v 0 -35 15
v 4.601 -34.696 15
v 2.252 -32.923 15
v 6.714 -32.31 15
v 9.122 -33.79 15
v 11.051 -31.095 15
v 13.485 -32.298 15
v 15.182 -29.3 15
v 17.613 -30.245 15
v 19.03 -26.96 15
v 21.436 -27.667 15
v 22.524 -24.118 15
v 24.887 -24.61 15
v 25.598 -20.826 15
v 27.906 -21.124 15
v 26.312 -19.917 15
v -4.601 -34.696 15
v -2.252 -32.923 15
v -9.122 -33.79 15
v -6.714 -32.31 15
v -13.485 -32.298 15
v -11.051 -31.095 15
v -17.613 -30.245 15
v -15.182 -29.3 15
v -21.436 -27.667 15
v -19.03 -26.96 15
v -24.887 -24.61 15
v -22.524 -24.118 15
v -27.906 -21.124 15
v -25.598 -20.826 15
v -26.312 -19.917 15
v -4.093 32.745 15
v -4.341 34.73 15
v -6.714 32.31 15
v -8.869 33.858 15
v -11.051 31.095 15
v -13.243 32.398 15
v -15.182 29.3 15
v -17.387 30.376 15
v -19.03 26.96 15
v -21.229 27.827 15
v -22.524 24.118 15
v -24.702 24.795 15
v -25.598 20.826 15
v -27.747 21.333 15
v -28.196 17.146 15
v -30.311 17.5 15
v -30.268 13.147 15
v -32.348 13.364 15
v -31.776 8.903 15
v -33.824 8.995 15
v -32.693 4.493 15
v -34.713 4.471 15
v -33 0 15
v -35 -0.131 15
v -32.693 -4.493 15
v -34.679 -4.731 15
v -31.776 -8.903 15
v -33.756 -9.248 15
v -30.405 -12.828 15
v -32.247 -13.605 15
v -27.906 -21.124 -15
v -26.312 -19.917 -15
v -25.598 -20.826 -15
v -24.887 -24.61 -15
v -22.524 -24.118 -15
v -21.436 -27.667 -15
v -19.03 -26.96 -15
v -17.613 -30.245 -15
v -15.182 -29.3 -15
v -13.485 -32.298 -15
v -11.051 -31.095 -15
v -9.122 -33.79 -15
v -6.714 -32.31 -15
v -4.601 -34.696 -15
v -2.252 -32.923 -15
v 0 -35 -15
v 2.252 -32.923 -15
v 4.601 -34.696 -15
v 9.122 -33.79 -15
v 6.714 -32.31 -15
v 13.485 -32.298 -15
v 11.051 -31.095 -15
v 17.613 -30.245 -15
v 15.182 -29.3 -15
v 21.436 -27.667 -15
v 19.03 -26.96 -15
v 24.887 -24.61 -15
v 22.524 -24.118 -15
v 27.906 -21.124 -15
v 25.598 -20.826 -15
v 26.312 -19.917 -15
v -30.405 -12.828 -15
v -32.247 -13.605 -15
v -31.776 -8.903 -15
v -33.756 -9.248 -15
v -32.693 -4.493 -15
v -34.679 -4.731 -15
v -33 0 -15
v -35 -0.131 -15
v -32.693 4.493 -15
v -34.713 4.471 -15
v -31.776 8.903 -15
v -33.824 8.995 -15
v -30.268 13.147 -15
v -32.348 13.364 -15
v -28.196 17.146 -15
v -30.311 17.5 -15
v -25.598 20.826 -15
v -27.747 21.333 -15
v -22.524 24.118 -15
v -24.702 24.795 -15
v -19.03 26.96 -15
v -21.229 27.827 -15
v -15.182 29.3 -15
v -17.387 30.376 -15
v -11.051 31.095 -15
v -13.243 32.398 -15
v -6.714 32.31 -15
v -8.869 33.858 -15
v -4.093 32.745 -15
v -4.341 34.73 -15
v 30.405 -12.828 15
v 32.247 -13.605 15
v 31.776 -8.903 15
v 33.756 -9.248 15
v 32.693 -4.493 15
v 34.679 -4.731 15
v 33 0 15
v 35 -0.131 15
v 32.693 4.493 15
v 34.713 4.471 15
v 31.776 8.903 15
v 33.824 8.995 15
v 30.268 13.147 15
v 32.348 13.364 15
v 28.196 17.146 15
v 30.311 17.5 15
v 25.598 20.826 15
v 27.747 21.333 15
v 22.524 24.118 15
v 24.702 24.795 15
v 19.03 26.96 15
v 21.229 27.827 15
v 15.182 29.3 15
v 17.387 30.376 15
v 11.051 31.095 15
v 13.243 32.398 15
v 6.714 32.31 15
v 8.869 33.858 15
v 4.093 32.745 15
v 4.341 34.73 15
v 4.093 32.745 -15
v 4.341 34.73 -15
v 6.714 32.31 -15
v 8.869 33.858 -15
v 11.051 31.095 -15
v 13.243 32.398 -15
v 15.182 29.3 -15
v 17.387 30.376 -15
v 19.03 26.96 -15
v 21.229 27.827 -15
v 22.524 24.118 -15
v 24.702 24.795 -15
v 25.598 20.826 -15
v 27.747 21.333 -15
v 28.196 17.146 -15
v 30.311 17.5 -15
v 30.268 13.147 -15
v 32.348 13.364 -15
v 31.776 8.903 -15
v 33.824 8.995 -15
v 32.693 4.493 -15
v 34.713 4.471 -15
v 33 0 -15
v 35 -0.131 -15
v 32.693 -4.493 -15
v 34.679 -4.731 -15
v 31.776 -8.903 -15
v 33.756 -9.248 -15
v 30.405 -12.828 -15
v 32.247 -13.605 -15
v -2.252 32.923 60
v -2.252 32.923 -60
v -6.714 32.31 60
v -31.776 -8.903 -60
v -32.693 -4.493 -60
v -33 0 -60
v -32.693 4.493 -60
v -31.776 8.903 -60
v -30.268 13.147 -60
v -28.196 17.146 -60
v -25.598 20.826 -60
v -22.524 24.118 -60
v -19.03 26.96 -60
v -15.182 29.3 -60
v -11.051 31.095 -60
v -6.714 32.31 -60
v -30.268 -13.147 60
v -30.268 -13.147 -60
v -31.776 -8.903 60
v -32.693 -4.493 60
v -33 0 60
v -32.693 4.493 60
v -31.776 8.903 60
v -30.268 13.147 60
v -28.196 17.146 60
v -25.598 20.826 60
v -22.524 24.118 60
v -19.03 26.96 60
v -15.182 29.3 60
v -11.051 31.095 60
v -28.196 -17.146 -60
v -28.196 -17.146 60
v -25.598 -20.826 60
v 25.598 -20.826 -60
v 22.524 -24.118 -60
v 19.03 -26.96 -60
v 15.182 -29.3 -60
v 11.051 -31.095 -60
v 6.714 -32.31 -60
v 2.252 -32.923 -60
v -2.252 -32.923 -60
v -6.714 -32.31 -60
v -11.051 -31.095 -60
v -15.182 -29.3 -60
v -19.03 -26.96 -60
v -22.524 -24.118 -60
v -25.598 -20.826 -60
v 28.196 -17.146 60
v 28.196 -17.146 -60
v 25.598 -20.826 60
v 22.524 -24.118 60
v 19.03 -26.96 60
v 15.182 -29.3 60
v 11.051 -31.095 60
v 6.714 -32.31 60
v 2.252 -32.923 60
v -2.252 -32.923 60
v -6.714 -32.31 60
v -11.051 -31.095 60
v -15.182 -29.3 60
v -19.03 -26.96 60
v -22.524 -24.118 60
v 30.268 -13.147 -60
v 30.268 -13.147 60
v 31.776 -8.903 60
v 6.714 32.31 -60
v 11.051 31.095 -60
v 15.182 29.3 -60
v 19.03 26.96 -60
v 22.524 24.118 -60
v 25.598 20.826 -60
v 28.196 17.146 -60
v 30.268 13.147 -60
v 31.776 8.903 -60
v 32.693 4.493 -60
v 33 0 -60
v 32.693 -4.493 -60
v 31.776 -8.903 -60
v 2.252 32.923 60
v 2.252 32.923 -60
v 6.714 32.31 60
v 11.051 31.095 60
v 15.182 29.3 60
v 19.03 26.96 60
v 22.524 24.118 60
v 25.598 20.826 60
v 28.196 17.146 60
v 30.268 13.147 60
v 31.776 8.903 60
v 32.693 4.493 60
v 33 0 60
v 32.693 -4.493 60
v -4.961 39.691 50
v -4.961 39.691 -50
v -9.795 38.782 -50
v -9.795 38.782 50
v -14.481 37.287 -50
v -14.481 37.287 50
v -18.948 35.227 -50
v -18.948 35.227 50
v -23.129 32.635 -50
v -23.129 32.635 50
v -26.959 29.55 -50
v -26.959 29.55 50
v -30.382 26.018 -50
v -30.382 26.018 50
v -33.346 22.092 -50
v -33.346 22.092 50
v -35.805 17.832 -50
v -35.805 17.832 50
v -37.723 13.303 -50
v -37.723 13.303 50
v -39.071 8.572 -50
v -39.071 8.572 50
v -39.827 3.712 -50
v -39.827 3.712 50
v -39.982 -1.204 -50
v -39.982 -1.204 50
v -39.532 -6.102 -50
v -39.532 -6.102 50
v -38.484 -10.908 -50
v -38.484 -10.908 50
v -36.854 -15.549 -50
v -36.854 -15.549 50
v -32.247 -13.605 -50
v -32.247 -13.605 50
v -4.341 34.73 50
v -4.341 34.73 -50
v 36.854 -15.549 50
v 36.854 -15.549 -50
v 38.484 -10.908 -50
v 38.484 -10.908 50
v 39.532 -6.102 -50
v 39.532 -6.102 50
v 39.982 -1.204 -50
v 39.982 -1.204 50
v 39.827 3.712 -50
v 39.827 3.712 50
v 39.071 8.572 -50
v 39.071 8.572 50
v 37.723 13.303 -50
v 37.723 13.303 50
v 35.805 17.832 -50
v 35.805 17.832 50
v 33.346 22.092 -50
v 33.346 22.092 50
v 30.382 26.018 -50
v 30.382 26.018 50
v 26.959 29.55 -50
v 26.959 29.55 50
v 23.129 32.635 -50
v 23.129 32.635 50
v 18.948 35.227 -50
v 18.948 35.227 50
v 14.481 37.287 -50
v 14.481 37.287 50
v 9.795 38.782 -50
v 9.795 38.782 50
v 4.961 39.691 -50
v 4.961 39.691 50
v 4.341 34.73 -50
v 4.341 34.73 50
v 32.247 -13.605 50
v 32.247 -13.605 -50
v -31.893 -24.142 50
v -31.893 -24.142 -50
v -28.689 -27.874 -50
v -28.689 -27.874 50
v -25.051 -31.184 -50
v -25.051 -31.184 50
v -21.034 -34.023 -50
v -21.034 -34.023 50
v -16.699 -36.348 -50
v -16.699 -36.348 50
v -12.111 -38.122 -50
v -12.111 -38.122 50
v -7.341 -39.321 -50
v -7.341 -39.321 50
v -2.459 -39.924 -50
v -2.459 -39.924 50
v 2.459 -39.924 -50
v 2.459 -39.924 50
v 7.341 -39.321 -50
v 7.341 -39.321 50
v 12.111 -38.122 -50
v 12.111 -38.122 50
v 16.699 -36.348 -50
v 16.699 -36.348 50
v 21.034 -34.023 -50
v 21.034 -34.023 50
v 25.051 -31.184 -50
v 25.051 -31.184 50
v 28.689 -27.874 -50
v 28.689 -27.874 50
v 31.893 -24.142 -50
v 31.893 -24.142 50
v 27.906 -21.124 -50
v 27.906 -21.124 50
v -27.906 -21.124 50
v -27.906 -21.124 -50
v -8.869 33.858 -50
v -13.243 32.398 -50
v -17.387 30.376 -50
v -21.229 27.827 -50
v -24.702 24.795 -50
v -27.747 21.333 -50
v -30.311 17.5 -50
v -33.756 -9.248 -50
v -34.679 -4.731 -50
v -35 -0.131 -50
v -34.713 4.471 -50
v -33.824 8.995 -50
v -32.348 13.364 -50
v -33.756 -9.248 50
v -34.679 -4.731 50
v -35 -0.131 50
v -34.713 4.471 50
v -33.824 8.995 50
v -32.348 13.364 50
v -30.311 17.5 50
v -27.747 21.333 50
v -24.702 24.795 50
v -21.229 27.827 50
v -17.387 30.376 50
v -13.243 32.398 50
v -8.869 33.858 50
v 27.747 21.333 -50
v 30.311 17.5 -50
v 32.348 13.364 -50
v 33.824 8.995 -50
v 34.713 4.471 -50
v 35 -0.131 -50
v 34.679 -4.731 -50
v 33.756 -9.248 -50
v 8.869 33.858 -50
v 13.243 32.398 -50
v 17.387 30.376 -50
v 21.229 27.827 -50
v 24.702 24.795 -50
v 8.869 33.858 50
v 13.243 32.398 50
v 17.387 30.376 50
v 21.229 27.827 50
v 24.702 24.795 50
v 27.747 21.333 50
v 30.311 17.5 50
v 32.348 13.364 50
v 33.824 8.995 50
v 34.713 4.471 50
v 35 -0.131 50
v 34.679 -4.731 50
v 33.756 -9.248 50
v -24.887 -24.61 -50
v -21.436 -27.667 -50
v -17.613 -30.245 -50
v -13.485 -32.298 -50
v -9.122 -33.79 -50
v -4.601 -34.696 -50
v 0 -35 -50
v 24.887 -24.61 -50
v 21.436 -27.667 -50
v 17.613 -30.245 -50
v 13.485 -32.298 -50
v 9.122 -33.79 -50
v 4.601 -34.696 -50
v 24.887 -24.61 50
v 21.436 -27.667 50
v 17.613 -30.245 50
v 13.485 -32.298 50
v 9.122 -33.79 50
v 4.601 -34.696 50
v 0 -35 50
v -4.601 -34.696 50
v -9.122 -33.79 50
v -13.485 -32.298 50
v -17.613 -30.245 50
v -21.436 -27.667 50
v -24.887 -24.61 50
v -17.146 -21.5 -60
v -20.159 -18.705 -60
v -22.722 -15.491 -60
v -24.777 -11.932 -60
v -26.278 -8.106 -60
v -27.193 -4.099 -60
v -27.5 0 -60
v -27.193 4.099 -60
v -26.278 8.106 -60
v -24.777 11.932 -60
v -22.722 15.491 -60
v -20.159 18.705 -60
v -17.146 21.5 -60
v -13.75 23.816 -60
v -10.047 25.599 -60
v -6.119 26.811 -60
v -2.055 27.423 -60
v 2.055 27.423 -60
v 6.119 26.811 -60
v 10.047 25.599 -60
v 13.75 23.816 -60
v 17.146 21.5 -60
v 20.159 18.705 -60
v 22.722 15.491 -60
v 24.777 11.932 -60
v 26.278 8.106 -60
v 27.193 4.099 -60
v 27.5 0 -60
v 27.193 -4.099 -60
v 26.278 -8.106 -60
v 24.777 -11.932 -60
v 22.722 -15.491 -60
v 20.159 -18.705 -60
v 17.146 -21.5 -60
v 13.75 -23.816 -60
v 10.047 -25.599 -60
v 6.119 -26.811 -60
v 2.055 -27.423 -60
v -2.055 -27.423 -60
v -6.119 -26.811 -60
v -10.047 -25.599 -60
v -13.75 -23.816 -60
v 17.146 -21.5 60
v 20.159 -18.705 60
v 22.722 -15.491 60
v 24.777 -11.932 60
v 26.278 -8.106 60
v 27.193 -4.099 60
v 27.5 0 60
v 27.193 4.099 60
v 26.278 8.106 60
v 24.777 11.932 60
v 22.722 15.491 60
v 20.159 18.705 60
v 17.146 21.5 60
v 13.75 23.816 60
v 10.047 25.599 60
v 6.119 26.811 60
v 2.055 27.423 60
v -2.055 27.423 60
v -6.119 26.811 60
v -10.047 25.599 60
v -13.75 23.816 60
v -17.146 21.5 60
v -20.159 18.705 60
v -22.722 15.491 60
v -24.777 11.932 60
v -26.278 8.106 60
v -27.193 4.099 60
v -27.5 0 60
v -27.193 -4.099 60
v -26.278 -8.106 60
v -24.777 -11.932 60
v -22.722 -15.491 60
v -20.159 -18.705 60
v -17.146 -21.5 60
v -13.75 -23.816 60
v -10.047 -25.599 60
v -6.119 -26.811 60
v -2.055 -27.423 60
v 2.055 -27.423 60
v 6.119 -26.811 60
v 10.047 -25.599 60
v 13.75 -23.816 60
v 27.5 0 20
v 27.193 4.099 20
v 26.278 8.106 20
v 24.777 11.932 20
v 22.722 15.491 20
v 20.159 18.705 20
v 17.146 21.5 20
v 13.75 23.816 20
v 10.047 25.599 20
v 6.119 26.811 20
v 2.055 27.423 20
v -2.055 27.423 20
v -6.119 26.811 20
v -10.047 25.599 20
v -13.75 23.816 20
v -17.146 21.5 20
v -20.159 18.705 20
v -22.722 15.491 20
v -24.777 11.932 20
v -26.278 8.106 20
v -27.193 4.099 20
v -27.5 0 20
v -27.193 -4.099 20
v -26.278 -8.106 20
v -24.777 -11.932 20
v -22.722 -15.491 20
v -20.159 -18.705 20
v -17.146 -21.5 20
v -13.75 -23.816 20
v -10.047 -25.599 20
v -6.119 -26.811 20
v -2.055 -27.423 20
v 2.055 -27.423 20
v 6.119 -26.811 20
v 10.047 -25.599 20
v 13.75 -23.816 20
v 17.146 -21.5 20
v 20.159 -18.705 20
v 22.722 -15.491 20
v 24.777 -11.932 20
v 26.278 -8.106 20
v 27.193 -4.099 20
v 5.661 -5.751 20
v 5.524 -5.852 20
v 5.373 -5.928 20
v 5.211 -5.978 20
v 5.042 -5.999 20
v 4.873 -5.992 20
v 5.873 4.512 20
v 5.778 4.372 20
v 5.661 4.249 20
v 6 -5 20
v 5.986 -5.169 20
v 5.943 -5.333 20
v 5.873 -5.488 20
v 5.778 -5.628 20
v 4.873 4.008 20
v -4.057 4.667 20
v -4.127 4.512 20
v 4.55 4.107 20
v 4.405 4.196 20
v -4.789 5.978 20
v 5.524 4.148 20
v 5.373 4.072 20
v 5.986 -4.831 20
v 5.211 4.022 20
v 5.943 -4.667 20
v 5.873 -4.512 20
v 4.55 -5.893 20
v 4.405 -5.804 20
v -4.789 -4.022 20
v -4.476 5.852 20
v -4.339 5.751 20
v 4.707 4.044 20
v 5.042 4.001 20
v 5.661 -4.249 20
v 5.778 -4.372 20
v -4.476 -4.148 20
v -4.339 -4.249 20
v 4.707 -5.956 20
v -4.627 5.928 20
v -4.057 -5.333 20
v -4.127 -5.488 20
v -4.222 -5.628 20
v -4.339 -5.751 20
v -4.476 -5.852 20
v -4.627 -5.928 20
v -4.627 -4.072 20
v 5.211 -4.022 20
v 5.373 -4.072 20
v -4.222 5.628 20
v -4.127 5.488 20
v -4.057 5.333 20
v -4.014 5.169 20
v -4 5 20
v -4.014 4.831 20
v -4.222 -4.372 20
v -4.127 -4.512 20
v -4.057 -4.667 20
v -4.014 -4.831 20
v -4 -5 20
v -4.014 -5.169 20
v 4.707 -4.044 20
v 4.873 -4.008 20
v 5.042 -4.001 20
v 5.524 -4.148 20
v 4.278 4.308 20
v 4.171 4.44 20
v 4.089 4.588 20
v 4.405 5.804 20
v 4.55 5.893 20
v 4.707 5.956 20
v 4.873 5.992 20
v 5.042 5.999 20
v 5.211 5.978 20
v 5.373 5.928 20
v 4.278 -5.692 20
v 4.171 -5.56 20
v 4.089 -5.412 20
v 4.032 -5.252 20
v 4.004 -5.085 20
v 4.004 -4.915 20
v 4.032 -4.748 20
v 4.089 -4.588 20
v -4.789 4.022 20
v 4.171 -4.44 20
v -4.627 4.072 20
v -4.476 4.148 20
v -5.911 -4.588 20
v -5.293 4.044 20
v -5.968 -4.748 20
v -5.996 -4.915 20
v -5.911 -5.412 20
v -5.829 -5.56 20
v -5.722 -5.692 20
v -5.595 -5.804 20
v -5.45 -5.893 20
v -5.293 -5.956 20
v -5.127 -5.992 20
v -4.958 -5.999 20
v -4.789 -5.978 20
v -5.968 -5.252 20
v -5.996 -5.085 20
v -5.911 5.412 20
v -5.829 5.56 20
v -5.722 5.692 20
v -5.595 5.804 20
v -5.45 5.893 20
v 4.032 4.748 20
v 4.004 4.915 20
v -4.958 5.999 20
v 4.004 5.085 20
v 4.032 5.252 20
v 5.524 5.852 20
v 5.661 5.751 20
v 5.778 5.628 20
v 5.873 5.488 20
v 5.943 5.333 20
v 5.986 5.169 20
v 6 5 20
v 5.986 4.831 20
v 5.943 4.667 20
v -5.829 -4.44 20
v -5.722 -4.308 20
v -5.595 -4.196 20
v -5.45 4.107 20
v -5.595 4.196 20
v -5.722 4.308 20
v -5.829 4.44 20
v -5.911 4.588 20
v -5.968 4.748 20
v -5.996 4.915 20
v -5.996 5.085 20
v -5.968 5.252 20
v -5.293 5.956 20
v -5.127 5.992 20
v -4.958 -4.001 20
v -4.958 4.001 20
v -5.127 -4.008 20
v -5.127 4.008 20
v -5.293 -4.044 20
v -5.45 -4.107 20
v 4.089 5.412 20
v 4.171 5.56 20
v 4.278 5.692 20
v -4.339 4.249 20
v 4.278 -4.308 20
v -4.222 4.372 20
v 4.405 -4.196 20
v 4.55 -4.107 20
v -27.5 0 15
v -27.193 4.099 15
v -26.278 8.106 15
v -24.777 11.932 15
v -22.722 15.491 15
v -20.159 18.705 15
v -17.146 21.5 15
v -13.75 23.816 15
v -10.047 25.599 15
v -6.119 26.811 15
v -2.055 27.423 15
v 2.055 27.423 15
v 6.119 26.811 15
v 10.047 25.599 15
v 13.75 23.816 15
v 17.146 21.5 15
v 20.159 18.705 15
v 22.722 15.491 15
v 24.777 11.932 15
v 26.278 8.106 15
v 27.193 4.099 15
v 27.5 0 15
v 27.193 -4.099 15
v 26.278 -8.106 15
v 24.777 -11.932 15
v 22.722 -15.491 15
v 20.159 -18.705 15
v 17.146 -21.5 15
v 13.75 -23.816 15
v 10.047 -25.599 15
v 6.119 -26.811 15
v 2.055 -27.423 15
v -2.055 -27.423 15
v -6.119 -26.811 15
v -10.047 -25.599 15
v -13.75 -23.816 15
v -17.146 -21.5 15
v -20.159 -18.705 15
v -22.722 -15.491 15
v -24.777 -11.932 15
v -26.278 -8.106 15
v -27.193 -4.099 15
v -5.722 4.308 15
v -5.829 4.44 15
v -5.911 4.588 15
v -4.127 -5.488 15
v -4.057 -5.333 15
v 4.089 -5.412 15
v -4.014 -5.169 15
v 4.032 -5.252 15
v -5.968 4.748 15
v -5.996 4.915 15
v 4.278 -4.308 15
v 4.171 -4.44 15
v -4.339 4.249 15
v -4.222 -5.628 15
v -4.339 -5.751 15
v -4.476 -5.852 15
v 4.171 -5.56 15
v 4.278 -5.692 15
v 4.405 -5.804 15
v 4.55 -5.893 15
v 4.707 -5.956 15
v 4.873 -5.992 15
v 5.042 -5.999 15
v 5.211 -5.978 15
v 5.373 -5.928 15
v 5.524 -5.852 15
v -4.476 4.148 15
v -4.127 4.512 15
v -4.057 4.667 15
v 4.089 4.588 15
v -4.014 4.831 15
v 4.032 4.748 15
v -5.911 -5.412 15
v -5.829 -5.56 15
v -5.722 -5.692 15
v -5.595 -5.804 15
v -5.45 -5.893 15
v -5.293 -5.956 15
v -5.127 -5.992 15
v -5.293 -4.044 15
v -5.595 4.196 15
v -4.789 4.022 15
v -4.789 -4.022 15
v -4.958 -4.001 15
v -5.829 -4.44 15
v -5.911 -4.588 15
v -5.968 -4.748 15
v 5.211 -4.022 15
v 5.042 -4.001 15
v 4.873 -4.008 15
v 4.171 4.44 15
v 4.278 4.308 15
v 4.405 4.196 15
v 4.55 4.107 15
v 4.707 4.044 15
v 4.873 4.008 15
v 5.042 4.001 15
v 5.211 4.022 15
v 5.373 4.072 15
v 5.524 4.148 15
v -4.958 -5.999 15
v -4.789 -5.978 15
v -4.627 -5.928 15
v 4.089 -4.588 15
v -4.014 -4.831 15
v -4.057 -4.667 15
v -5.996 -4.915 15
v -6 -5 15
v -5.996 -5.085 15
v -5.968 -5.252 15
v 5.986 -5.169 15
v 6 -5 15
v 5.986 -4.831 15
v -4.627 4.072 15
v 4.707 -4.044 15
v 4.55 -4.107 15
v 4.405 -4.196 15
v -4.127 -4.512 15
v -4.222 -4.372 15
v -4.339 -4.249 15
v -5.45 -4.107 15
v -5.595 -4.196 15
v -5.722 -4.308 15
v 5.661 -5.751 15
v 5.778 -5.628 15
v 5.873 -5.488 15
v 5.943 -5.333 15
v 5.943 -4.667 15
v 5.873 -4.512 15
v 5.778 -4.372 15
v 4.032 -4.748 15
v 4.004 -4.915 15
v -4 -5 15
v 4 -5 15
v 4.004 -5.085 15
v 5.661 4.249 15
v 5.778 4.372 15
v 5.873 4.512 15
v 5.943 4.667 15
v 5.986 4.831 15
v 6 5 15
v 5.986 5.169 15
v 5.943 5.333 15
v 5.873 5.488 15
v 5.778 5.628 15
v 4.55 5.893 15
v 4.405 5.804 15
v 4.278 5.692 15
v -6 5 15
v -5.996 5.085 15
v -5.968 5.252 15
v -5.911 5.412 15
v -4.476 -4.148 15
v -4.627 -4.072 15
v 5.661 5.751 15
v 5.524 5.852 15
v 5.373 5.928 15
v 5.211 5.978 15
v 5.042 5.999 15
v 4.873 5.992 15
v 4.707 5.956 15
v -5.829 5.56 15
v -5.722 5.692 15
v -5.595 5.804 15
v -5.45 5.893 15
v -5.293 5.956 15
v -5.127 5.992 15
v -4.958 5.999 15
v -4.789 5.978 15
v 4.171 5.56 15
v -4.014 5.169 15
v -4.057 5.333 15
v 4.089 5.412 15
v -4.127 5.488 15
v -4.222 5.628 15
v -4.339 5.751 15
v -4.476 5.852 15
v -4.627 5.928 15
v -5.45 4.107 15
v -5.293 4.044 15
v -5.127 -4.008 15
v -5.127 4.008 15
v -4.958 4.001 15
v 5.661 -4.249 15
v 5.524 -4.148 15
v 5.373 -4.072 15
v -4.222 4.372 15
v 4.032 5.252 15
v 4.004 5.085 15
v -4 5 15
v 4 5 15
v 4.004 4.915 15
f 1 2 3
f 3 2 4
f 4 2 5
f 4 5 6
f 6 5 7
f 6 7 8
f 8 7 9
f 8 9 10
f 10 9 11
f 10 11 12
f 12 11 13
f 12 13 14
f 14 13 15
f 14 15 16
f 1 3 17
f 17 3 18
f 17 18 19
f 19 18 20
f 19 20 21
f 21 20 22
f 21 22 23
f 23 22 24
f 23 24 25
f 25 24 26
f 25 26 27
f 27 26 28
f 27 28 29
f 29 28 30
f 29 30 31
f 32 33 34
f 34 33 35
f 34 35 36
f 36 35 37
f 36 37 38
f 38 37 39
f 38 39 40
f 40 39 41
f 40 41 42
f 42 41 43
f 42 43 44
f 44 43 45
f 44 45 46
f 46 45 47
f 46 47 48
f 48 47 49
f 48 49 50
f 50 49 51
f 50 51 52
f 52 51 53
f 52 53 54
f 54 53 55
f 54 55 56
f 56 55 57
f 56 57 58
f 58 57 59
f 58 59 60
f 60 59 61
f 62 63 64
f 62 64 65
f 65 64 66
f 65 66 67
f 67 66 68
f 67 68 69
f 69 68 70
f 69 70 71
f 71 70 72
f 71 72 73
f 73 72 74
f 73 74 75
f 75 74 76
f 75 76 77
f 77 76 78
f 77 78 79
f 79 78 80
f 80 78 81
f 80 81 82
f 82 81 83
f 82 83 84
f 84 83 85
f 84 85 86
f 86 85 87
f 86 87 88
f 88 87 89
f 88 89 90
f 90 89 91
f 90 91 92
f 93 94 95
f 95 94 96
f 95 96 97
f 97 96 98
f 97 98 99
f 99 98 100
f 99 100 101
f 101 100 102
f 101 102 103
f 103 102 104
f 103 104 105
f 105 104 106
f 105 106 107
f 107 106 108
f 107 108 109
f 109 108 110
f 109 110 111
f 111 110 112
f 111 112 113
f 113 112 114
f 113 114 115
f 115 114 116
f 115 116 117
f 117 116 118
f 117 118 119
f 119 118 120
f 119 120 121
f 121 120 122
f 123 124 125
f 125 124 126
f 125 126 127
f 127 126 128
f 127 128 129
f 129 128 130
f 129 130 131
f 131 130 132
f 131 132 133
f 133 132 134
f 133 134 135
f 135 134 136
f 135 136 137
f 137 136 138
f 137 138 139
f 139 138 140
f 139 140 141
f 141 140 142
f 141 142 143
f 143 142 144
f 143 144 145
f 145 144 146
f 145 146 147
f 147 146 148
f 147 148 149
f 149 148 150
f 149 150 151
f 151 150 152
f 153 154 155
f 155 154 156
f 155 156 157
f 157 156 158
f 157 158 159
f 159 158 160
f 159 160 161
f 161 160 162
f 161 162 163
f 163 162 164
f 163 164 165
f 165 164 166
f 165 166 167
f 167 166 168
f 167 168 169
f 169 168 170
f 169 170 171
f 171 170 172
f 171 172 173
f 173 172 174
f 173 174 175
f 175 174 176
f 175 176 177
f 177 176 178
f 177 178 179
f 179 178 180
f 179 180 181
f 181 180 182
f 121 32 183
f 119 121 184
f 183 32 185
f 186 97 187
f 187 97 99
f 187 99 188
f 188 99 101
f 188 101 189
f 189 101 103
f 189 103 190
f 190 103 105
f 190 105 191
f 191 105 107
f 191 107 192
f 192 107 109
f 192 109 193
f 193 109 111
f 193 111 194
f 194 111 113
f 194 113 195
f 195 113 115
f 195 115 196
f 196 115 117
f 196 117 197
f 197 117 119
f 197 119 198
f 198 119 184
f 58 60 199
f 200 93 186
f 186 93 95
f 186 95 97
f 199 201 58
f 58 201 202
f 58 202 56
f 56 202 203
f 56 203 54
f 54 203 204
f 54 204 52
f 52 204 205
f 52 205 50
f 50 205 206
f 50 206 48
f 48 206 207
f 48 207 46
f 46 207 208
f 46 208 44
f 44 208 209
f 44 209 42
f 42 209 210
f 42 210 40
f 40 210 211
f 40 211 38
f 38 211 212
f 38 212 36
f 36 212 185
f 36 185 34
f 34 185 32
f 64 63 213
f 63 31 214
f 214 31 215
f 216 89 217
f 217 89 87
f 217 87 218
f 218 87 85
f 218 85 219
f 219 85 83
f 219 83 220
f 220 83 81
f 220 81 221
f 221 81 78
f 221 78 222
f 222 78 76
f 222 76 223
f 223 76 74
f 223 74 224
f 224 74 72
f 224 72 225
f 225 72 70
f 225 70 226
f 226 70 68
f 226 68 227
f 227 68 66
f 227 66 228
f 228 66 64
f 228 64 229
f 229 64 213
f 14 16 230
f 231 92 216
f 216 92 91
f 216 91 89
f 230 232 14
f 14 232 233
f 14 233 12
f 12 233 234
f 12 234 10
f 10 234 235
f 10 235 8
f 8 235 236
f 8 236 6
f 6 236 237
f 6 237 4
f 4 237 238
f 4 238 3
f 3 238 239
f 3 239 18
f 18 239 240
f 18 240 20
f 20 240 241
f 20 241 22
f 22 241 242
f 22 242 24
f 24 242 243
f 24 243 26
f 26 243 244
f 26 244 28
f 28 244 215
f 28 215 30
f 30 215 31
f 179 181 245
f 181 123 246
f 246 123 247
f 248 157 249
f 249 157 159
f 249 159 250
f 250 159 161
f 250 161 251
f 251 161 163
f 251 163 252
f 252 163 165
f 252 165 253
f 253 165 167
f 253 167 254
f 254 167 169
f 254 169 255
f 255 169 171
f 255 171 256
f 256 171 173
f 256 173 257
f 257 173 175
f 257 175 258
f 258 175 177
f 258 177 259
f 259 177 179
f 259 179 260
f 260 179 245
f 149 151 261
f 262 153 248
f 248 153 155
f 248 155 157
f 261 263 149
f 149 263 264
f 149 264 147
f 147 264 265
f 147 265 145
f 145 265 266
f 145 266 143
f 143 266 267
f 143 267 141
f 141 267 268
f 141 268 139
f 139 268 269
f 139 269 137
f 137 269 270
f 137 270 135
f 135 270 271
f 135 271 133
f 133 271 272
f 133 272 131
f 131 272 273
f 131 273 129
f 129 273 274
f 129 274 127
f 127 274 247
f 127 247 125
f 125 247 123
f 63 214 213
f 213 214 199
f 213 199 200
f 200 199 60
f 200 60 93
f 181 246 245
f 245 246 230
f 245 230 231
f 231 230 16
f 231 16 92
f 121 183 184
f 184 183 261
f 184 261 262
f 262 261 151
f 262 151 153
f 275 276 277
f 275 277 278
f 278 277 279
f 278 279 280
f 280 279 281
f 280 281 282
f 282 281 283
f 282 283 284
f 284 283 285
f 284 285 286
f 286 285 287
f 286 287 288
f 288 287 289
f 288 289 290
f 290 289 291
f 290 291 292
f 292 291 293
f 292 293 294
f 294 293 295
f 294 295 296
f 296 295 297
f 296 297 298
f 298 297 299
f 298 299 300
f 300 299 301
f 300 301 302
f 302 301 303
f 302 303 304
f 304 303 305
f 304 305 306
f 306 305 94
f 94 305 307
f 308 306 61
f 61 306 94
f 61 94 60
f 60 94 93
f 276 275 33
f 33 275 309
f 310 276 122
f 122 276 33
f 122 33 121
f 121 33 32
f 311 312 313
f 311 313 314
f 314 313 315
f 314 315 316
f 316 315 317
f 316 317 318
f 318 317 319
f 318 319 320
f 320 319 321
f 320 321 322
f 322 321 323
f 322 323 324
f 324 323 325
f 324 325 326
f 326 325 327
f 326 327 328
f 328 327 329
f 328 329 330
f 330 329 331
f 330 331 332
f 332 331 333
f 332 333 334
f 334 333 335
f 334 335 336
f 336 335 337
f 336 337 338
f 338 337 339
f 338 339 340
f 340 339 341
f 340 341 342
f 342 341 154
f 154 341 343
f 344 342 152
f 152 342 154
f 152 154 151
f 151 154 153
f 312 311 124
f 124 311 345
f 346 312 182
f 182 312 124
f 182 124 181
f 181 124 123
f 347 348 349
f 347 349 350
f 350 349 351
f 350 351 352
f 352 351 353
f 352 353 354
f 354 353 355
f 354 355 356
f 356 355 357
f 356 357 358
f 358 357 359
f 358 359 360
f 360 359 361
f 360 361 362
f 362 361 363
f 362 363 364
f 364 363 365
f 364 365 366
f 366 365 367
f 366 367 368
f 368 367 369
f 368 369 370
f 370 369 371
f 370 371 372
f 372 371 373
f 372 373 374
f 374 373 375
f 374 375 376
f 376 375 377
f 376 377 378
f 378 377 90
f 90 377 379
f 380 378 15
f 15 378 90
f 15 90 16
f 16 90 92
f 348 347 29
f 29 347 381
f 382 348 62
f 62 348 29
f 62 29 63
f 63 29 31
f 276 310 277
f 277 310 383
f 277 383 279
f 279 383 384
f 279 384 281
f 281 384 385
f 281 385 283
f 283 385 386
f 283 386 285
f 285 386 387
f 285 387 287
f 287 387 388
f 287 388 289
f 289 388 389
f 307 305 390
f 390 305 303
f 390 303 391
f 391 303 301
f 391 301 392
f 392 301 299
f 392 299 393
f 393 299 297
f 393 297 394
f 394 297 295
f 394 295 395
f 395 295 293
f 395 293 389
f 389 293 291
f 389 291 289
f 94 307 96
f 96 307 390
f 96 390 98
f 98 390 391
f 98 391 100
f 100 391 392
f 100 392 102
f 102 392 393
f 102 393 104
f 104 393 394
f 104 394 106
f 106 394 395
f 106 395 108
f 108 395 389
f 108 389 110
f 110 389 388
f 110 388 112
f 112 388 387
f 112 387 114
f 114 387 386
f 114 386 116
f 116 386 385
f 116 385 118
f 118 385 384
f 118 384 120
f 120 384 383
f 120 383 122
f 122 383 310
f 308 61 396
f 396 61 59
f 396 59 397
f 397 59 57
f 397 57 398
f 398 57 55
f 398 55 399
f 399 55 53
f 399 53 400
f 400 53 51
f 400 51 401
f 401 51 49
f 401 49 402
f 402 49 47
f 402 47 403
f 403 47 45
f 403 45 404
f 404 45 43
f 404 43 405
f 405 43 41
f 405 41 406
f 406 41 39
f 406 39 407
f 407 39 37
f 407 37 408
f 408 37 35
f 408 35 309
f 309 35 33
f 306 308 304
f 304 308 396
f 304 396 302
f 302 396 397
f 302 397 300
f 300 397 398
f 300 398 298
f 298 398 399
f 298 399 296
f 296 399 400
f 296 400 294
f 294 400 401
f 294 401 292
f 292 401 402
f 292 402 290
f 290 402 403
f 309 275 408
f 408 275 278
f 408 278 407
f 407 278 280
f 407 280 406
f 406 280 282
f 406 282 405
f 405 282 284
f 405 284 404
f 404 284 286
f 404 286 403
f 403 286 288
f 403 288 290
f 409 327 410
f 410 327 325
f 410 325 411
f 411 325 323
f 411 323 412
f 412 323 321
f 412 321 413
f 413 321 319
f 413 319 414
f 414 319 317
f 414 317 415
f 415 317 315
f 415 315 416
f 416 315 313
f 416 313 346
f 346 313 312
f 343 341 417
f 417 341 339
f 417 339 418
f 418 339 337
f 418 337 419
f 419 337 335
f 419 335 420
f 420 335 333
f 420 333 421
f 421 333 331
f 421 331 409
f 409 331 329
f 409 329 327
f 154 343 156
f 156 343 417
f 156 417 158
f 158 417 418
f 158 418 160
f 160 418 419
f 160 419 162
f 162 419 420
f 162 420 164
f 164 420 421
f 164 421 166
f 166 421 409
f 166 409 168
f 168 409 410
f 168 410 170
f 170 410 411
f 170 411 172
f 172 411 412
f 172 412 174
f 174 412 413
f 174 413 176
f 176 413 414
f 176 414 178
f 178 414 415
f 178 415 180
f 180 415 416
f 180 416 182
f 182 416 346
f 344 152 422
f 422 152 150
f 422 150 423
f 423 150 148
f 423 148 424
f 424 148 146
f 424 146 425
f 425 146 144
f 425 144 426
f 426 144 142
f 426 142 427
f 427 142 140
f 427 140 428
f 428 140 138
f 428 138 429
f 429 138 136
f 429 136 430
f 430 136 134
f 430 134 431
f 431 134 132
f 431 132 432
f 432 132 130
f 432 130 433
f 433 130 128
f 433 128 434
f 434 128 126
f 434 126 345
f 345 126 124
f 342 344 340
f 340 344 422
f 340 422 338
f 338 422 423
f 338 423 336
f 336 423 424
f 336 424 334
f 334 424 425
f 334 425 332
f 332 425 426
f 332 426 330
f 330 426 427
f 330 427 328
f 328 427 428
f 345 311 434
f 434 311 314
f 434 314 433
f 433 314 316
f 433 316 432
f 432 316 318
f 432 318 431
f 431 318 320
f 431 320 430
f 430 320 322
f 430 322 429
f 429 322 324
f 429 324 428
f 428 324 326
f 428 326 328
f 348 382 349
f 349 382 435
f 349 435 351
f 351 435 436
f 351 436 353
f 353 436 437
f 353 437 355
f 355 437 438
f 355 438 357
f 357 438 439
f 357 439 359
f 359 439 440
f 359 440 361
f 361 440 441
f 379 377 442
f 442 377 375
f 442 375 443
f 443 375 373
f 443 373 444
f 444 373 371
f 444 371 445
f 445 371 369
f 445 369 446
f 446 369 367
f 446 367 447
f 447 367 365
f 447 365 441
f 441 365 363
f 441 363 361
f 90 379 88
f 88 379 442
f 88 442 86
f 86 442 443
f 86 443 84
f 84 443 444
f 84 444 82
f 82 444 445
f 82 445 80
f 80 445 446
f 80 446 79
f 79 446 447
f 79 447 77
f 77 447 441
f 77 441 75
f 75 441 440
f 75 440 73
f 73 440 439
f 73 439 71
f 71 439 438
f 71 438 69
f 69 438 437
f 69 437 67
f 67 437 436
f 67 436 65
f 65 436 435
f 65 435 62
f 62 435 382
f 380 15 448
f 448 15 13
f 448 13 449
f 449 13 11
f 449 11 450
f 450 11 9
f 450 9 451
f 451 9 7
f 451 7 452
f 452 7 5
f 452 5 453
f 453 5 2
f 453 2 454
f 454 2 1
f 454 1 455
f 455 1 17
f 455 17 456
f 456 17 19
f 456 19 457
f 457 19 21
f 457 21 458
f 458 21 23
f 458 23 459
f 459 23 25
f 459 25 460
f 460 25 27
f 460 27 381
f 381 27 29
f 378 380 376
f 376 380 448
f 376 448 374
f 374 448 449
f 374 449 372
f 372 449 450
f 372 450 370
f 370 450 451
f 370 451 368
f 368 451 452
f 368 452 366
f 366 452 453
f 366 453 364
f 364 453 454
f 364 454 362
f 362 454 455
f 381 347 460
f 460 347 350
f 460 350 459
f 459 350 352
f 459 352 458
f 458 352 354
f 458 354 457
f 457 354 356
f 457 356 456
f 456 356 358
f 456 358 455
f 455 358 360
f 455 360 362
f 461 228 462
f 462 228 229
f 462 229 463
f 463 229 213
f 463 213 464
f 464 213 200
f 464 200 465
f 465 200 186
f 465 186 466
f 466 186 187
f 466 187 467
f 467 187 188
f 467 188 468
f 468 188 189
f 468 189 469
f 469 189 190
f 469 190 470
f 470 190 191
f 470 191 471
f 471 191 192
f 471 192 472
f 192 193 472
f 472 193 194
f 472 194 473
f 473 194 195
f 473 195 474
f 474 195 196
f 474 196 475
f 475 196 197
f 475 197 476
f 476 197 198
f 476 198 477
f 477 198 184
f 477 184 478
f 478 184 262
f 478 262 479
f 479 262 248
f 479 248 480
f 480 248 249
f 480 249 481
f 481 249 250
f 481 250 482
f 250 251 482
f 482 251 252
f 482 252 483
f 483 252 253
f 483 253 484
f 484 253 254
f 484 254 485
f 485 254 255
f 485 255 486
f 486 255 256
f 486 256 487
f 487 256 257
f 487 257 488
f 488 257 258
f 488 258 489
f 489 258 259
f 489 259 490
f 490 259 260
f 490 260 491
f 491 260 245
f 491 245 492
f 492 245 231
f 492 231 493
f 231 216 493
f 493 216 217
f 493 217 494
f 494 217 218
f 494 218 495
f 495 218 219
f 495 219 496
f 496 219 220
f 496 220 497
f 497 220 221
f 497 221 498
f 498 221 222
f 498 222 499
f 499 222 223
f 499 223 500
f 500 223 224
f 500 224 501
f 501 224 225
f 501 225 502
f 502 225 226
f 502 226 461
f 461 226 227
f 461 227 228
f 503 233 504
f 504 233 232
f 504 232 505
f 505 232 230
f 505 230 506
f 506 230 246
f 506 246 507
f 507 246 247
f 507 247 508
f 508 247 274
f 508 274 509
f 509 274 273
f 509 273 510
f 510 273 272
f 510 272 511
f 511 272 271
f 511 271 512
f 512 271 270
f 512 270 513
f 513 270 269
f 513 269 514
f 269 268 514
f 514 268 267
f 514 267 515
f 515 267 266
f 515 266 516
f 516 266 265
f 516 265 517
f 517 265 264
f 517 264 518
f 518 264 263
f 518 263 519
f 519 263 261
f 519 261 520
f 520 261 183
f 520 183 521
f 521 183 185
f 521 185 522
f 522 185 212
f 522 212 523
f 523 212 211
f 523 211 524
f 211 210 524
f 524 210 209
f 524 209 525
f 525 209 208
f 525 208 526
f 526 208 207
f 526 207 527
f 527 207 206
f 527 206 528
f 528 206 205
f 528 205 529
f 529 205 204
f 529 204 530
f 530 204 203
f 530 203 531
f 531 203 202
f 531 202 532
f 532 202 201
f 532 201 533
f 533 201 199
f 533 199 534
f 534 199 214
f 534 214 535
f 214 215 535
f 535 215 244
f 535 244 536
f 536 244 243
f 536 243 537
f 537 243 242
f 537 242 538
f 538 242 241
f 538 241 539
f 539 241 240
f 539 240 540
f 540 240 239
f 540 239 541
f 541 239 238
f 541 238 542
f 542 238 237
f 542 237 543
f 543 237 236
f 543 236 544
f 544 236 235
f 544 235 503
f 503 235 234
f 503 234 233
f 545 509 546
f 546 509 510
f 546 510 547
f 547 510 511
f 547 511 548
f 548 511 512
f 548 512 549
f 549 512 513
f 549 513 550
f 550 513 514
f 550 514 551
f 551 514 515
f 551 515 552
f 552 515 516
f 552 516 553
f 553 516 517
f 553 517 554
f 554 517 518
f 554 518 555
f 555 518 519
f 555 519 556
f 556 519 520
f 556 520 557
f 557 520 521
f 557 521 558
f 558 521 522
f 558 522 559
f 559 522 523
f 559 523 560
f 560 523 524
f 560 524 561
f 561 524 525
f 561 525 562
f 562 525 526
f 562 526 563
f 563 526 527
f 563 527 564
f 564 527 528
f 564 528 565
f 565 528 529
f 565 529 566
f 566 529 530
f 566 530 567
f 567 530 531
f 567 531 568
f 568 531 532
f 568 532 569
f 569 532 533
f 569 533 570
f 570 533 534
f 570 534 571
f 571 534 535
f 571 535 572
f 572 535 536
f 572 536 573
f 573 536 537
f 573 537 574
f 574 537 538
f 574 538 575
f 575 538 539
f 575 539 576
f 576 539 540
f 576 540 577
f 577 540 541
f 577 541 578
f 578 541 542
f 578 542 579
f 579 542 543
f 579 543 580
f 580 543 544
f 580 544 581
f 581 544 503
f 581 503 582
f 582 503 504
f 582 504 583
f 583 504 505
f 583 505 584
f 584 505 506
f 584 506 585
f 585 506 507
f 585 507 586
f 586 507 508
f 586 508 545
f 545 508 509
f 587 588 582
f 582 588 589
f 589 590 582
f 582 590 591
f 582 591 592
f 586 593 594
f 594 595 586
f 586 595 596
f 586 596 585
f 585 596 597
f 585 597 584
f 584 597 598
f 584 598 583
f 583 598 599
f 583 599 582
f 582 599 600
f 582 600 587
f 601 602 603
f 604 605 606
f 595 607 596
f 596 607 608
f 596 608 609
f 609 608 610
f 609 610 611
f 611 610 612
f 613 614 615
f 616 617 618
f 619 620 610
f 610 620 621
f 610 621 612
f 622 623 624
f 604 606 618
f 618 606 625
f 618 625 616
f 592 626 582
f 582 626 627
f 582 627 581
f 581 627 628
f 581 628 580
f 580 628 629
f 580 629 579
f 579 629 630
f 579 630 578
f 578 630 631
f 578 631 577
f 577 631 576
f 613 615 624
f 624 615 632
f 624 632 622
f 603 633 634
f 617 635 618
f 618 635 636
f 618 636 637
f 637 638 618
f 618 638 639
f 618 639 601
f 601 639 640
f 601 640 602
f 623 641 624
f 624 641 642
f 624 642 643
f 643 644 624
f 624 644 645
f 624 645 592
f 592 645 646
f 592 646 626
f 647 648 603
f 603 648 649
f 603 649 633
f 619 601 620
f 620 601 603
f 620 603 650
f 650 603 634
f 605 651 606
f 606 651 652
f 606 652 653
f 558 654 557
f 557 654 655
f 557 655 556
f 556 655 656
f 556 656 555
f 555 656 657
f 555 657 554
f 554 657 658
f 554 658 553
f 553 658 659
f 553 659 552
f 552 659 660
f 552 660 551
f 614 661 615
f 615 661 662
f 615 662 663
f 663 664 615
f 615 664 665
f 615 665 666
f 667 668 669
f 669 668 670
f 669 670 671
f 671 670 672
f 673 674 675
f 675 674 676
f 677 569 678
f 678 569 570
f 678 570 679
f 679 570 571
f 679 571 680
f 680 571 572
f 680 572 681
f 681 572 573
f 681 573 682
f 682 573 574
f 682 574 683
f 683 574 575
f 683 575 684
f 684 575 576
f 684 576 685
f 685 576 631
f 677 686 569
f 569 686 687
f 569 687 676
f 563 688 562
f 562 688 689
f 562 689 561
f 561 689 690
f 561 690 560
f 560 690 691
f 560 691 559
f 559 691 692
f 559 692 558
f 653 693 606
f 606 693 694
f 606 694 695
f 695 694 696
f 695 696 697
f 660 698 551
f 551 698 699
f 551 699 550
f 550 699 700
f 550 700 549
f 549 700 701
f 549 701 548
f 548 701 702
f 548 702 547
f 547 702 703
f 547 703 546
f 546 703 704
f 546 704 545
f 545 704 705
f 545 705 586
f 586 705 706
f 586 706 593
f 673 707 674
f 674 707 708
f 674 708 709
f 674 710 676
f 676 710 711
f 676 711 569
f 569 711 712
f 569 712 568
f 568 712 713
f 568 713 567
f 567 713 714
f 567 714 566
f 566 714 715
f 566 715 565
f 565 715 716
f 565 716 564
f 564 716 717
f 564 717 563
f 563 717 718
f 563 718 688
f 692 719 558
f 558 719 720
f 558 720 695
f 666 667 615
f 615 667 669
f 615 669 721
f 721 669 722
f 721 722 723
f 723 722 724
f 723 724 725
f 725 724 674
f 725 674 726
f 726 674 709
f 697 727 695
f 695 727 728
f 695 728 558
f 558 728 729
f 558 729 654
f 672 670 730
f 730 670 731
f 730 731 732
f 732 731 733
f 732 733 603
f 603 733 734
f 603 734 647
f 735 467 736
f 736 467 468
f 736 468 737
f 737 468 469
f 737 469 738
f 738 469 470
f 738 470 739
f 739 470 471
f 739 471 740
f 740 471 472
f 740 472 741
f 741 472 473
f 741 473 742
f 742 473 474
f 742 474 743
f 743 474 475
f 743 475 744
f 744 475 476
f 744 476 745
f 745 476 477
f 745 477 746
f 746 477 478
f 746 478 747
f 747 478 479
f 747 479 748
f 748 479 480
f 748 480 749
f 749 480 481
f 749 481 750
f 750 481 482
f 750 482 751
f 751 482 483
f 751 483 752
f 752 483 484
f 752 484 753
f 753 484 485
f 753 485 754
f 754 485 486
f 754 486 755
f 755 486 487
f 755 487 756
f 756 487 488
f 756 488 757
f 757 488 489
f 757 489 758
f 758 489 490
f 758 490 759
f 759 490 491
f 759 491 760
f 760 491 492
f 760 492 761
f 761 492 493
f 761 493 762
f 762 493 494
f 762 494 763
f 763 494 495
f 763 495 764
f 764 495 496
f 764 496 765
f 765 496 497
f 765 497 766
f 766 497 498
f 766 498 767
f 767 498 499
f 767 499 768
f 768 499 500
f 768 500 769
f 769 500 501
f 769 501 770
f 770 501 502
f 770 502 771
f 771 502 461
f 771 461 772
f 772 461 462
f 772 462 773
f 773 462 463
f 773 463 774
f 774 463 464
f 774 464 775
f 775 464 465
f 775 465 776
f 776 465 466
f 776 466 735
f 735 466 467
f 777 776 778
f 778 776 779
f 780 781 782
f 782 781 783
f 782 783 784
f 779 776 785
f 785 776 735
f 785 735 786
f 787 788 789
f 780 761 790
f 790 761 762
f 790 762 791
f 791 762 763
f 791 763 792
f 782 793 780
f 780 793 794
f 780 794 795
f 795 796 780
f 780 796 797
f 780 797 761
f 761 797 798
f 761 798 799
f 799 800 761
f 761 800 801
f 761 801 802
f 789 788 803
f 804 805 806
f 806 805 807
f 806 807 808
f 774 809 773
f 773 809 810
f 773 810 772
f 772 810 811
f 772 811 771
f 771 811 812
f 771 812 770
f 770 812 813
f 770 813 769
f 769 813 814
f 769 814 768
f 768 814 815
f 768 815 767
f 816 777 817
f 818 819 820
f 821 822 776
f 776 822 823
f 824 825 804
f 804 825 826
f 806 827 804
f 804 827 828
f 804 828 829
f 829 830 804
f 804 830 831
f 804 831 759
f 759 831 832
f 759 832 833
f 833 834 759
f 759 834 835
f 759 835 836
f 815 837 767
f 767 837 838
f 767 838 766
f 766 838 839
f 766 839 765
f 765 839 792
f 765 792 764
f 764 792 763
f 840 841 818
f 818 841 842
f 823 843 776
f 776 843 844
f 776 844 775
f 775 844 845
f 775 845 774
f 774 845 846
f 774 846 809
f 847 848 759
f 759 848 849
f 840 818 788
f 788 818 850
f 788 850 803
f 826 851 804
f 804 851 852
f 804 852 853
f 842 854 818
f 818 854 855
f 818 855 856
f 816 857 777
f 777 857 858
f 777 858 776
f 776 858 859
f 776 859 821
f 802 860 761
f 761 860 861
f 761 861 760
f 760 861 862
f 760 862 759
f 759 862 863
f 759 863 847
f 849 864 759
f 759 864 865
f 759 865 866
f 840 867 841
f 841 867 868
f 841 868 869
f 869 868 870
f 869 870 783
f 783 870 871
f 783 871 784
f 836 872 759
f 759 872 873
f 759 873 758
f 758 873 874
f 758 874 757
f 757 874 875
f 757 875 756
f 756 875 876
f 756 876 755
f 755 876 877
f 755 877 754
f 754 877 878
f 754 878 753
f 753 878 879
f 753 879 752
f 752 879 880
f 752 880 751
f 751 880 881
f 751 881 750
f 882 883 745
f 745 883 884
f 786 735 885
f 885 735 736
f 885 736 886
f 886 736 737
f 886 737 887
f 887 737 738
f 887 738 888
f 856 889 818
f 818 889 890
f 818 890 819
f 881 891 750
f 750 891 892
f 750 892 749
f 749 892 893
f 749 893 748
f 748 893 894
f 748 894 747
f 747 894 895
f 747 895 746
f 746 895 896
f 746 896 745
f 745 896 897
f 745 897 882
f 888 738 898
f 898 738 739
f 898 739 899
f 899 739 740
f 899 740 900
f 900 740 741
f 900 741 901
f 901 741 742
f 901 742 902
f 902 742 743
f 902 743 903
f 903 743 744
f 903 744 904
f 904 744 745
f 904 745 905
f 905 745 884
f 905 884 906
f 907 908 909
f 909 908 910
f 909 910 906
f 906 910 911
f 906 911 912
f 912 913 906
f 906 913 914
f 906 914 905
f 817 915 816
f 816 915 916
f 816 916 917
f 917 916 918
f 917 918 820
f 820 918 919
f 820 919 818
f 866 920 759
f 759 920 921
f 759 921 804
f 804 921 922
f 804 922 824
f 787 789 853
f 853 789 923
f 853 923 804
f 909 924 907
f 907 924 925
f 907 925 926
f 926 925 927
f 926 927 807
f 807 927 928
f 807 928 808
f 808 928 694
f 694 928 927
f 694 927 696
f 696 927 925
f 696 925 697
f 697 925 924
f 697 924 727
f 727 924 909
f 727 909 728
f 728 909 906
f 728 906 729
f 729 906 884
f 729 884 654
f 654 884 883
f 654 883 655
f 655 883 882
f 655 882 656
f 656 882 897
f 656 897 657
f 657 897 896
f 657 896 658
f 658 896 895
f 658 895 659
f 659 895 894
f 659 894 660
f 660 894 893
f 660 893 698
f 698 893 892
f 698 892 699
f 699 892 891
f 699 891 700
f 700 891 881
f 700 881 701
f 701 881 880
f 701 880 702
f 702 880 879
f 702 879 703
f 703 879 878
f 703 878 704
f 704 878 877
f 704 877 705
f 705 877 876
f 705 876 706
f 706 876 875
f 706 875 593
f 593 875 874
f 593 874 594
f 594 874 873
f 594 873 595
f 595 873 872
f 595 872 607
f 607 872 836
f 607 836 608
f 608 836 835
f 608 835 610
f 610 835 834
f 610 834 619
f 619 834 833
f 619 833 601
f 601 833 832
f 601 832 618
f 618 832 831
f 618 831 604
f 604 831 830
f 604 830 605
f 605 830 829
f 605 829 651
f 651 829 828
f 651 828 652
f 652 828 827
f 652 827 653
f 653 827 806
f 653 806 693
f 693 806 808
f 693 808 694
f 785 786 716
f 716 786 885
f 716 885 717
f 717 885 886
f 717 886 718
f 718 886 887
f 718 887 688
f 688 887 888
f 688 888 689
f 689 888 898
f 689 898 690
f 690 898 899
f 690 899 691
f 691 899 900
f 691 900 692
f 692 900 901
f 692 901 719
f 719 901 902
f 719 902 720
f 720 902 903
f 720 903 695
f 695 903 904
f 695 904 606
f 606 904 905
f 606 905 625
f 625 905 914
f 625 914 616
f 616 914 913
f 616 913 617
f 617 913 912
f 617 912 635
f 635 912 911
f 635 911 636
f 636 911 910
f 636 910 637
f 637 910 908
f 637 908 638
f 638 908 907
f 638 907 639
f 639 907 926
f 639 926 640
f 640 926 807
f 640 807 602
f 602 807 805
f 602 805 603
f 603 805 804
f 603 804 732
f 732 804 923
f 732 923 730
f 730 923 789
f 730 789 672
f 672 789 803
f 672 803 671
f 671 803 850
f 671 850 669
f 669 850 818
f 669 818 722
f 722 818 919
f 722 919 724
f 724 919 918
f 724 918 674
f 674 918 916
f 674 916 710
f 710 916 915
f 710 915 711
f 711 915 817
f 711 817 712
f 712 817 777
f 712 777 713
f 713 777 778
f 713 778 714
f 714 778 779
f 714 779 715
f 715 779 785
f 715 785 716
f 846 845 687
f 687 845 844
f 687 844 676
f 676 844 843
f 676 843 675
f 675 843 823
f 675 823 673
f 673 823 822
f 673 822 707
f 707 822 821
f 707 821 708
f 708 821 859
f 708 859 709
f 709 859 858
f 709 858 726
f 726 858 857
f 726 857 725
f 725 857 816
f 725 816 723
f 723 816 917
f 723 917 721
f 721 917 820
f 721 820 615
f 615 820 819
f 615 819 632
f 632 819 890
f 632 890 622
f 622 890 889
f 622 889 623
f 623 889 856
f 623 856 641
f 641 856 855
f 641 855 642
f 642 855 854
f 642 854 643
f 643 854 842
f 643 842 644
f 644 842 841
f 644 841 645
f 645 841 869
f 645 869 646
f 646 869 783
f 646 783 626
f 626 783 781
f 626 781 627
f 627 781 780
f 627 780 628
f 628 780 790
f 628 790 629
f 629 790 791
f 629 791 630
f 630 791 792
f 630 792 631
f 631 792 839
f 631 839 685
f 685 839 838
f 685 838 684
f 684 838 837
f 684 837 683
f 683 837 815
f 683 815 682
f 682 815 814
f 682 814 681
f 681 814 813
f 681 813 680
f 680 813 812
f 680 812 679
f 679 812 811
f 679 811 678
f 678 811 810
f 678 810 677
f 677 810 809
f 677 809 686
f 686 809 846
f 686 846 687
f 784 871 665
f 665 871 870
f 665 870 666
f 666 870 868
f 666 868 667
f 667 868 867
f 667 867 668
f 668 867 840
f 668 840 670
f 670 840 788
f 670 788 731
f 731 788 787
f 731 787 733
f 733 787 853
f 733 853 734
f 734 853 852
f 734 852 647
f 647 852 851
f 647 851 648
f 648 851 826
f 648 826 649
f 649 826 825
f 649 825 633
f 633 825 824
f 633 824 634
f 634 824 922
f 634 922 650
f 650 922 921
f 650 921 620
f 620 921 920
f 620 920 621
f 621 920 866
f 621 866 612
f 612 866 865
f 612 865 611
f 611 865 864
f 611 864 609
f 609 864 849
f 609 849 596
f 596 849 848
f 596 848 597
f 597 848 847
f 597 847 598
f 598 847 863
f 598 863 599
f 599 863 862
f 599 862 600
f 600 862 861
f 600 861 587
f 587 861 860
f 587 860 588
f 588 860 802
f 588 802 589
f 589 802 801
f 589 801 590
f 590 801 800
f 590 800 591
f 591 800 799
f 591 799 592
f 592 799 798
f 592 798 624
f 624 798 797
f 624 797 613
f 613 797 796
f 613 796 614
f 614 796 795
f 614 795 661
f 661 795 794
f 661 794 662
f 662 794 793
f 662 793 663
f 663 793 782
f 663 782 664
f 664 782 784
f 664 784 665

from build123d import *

# Parameters (mm, degrees)
CROQUIS1_R                 = 33
SALIENTE_EXTRUIR1_DEPTH    = 15
SALIENTE_EXTRUIR2_DEPTH    = 15
SALIENTE_EXTRUIR3_DEPTH    = 50
CROQUIS4_R                 = 33
SALIENTE_EXTRUIR4_DEPTH    = 60
CROQUIS5_R                 = 27.5
CORTAR_EXTRUIR1_DEPTH      = 40
CROQUIS6_R                 = 27.5
CORTAR_EXTRUIR2_DEPTH      = 75
CROQUIS7_R                 = 1
CORTAR_EXTRUIR3_DEPTH      = 61
CORTAR_EXTRUIR3_DEPTH_BACK = 61


with BuildPart() as part:
    # Croquis1 → Saliente-Extruir1 (new body, symmetric)
    with BuildSketch(Plane.XY):
        Circle(CROQUIS1_R)
    extrude(amount=SALIENTE_EXTRUIR1_DEPTH, both=True)

    # Croquis2 → Saliente-Extruir2 (add, symmetric)
    with BuildSketch(Plane.XY):
        with BuildLine():
            Line((-4.961389384, 39.691115069), (-4.093146241, 32.745169932))
            ThreePointArc((-4.093146241, 32.745169932), (-28.578838325, 16.5), (-30.404722133, -12.827816339))
            Line((-30.404722133, -12.827816339), (-36.854208646, -15.54886829))
            ThreePointArc((-36.854208646, -15.54886829), (-34.641016151, 20), (-4.961389384, 39.691115069))
        make_face()
        with BuildLine():
            Line((4.961389384, 39.691115069), (4.093146241, 32.745169932))
            ThreePointArc((4.093146241, 32.745169932), (28.578838325, 16.5), (30.404722133, -12.827816339))
            Line((30.404722133, -12.827816339), (36.854208646, -15.54886829))
            ThreePointArc((36.854208646, -15.54886829), (34.641016151, 20), (4.961389384, 39.691115069))
        make_face()
        with BuildLine():
            Line((31.892819262, -24.142246779), (26.311575891, -19.917353592))
            ThreePointArc((26.311575891, -19.917353592), (0, -33), (-26.311575891, -19.917353592))
            Line((-26.311575891, -19.917353592), (-31.892819262, -24.142246779))
            ThreePointArc((-31.892819262, -24.142246779), (0, -40), (31.892819262, -24.142246779))
        make_face()
    extrude(amount=SALIENTE_EXTRUIR2_DEPTH, both=True)

    # Croquis3 → Saliente-Extruir3 (add, symmetric)
    with BuildSketch(Plane.XY):
        with BuildLine():
            Line((-4.341215711, 34.729725685), (-4.961389384, 39.691115069))
            ThreePointArc((-4.961389384, 39.691115069), (-34.641016151, 20), (-36.854208646, -15.54886829))
            Line((-36.854208646, -15.54886829), (-32.247432565, -13.605259754))
            ThreePointArc((-32.247432565, -13.605259754), (-30.310889132, 17.5), (-4.341215711, 34.729725685))
        make_face()
        with BuildLine():
            Line((4.341215711, 34.729725685), (4.961389384, 39.691115069))
            ThreePointArc((4.961389384, 39.691115069), (34.641016151, 20), (36.854208646, -15.54886829))
            Line((36.854208646, -15.54886829), (32.247432565, -13.605259754))
            ThreePointArc((32.247432565, -13.605259754), (30.310889132, 17.5), (4.341215711, 34.729725685))
        make_face()
        with BuildLine():
            Line((31.892819262, -24.142246779), (27.906216854, -21.124465931))
            ThreePointArc((27.906216854, -21.124465931), (0, -35), (-27.906216854, -21.124465931))
            Line((-27.906216854, -21.124465931), (-31.892819262, -24.142246779))
            ThreePointArc((-31.892819262, -24.142246779), (0, -40), (31.892819262, -24.142246779))
        make_face()
    extrude(amount=SALIENTE_EXTRUIR3_DEPTH, both=True)

    # Croquis4 → Saliente-Extruir4 (add, symmetric)
    with BuildSketch(Plane.XY):
        Circle(CROQUIS4_R)
    extrude(amount=SALIENTE_EXTRUIR4_DEPTH, both=True)

    # Croquis5 → Cortar-Extruir1 (cut)
    with BuildSketch(Plane.XY.offset(60)):
        Circle(CROQUIS5_R)
    extrude(amount=-CORTAR_EXTRUIR1_DEPTH, mode=Mode.SUBTRACT)

    # Croquis6 → Cortar-Extruir2 (cut)
    with BuildSketch(Plane(origin=(0, 0, -60), x_dir=(-1, 0, 0), z_dir=(0, 0, -1))):
        Circle(CROQUIS6_R)
    extrude(amount=-CORTAR_EXTRUIR2_DEPTH, mode=Mode.SUBTRACT)

    # Croquis7 → Cortar-Extruir3 (cut, two sides)
    with BuildSketch(Plane.XY) as cortar_extruir3_sk:
        with Locations((5, 5)):
            Circle(CROQUIS7_R)
        with Locations((-5, 5)):
            Circle(CROQUIS7_R)
        with Locations((-5, -5)):
            Circle(CROQUIS7_R)
        with Locations((5, -5)):
            Circle(CROQUIS7_R)
    extrude(amount=CORTAR_EXTRUIR3_DEPTH, mode=Mode.SUBTRACT)
    extrude(cortar_extruir3_sk.sketch, amount=-CORTAR_EXTRUIR3_DEPTH_BACK, mode=Mode.SUBTRACT)


solid = part.part
